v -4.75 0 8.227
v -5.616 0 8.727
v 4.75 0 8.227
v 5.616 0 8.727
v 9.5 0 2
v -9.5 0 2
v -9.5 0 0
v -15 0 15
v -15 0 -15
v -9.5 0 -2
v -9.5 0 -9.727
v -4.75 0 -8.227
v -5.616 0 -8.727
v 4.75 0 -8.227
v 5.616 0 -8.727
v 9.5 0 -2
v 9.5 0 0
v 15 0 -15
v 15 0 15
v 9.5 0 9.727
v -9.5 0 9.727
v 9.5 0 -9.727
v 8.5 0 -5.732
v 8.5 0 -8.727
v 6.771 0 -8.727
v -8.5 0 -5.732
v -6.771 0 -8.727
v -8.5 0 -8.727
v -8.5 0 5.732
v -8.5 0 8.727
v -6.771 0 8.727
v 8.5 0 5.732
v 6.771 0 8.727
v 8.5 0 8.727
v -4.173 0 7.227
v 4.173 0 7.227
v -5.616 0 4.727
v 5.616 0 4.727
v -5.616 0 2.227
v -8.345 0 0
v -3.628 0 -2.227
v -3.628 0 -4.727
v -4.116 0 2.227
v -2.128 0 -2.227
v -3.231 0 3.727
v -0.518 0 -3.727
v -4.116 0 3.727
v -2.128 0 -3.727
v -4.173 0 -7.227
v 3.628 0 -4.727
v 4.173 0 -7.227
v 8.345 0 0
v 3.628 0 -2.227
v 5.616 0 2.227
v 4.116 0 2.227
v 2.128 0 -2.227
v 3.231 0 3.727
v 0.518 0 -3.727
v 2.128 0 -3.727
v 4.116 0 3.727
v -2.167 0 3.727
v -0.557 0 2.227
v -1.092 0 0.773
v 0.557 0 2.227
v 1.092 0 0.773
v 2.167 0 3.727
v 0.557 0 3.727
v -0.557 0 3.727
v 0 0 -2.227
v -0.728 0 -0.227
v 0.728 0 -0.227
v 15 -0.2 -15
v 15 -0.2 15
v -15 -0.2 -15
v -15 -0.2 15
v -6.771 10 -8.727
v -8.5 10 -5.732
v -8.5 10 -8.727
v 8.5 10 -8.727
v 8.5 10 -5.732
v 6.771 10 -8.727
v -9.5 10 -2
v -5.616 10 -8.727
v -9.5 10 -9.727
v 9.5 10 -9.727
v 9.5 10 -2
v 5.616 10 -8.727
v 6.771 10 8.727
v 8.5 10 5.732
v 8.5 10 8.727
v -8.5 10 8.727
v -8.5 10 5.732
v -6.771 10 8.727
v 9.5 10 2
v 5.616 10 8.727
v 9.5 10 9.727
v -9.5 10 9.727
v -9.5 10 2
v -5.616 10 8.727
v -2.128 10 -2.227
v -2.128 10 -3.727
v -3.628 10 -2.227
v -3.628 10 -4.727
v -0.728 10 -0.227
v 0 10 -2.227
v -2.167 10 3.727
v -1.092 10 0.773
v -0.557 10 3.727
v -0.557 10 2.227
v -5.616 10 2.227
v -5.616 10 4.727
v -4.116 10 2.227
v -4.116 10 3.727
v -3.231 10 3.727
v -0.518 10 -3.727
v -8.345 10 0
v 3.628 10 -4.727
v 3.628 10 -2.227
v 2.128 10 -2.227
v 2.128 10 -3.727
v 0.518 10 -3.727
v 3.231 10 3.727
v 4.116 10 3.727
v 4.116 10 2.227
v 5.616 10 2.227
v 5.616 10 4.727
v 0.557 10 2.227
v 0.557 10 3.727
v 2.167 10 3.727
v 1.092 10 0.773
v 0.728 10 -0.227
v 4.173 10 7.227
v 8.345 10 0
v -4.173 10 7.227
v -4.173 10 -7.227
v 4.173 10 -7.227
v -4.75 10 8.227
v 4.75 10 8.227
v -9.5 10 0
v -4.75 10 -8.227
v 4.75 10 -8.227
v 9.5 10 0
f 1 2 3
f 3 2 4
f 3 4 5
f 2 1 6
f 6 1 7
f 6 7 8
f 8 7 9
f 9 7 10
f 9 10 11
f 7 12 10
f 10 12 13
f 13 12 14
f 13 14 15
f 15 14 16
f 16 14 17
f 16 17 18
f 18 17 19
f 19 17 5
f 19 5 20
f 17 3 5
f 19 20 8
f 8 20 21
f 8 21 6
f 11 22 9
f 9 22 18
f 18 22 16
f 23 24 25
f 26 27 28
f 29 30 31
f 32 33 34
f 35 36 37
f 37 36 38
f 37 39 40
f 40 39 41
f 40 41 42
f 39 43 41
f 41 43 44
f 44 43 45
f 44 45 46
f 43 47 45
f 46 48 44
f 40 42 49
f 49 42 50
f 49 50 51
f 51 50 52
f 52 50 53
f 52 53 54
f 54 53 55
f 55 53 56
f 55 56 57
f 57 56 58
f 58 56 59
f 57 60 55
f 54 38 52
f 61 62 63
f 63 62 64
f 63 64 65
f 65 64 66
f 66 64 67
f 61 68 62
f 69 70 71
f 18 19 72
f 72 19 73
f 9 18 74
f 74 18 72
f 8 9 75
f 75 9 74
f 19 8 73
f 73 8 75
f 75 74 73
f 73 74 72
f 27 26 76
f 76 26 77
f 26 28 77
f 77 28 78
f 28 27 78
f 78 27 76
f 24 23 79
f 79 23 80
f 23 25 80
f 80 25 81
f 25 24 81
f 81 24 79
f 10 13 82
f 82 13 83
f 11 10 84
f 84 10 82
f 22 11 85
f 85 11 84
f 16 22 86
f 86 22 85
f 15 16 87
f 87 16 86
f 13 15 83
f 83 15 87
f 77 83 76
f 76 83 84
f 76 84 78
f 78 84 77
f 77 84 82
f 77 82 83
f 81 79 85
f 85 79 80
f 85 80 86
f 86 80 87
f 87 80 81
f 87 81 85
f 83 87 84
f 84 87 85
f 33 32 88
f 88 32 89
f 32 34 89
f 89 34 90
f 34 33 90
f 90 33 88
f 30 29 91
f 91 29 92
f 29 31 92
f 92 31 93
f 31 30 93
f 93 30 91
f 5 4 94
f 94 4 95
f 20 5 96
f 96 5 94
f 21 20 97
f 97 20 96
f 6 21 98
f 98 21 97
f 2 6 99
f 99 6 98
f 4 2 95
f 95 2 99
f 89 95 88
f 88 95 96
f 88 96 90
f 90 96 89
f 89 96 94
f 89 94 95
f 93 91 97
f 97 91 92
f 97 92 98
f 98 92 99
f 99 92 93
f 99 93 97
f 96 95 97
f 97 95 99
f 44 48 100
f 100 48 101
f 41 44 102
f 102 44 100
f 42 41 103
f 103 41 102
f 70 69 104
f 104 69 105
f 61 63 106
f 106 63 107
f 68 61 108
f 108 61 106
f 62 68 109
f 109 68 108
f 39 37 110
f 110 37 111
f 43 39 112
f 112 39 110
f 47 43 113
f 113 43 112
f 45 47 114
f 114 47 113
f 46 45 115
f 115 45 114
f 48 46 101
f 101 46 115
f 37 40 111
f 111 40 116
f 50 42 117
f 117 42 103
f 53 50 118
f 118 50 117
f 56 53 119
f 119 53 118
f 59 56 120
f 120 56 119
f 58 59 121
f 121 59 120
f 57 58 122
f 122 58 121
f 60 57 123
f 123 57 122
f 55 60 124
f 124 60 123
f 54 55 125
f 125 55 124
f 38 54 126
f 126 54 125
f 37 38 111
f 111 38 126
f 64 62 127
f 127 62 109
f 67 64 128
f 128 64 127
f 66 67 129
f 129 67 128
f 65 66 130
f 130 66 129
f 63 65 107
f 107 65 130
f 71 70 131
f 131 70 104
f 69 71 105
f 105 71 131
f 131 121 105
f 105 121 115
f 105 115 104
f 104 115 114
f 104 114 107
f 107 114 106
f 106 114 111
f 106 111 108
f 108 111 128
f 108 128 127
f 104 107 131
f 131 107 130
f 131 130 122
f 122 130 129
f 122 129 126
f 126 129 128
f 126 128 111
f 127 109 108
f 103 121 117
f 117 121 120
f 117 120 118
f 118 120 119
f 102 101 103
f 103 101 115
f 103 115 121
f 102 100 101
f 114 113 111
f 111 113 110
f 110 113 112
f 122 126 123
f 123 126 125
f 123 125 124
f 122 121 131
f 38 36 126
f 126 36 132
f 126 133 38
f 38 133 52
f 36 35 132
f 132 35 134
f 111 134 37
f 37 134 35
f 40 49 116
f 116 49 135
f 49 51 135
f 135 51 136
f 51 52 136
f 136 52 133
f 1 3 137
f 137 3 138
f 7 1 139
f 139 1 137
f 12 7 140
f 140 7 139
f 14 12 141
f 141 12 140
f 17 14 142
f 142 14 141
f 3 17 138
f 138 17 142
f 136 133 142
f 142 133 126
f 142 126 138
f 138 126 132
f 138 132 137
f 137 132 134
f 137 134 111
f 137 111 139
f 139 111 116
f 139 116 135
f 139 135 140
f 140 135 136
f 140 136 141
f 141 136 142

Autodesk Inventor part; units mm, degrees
ref_plane "YZ Plane" through (0, 0, 0) normal (1, 0, 0) x (0, 1, 0)
ref_plane "XZ Plane" through (0, 0, 0) normal (0, 1, 0) x (-1, 0, 0)
ref_plane "XY Plane" through (0, 0, 0) normal (0, 0, 1) x (1, 0, 0)
sketch "Sketch1" plane through (0, 0, 0) normal (0, 1, 0) x (-1, 0, 0)
  line L0 (-10, 10) -> (10, 10)
  line L1 (10, 10) -> (10, -10)
  line L2 (10, -10) -> (-10, -10)
  line L3 (-10, -10) -> (-10, 10)
  line L4 (-10, 10) -> (10, -10) construction
  line L5 (10, 10) -> (-10, -10) construction
  line L6 (-9.5, 0) -> (-4.75, 8.2272)
  line L7 (-4.75, 8.2272) -> (4.75, 8.2272)
  line L8 (4.75, 8.2272) -> (9.5, 0)
  line L9 (9.5, 0) -> (4.75, -8.2272)
  line L10 (4.75, -8.2272) -> (-4.75, -8.2272)
  line L11 (-4.75, -8.2272) -> (-9.5, 0)
  line L12 (-8.3453, 0) -> (-4.1726, 7.2272)
  line L13 (-4.1726, 7.2272) -> (4.1726, 7.2272)
  line L14 (4.1726, 7.2272) -> (8.3453, 0)
  line L15 (8.3453, 0) -> (4.1726, -7.2272)
  line L16 (4.1726, -7.2272) -> (-4.1726, -7.2272)
  line L17 (-4.1726, -7.2272) -> (-8.3453, 0)
  line L18 (2.1284, -3.7272) -> (2.1284, -2.2272)
  line L19 (2.1284, -2.2272) -> (3.6284, -2.2272)
  line L20 (3.6284, -2.2272) -> (3.6284, -4.7272)
  line L21 (3.6284, -4.7272) -> (0, -4.7272)
  line L22 (0, -4.7272) -> (0, -2.2272)
  line L23 (0, -2.2272) -> (0.7279, -0.2272)
  line L24 (0.7279, -0.2272) -> (0, -0.2272)
  line L25 (0, -0.2272) -> (0, 0.7728)
  line L26 (0, 0.7728) -> (1.0919, 0.7728)
  line L27 (3.2314, 3.7272) -> (0.5182, -3.7272)
  line L28 (0.5182, -3.7272) -> (2.1284, -3.7272)
  line L29 (3.2314, 3.7272) -> (4.116, 3.7272)
  line L30 (4.116, 3.7272) -> (4.116, 2.2272)
  line L31 (4.116, 2.2272) -> (5.616, 2.2272)
  line L32 (5.616, 2.2272) -> (5.616, 4.7272)
  line L33 (5.616, 4.7272) -> (2.2598, 4.7272)
  line L34 (1.0919, 0.7728) -> (2.1673, 3.7272)
  line L35 (2.1673, 3.7272) -> (0.5571, 3.7272)
  line L36 (0.5571, 3.7272) -> (0.5571, 2.2272)
  line L37 (0.5571, 2.2272) -> (0, 2.2272)
  line L38 (0, 2.2272) -> (0, 4.7272)
  line L39 (0, 4.7272) -> (2.2598, 4.7272)
  line L40 (-2.1284, -3.7272) -> (-2.1284, -2.2272)
  line L41 (-2.1284, -2.2272) -> (-3.6284, -2.2272)
  line L42 (-3.6284, -2.2272) -> (-3.6284, -4.7272)
  line L43 (-3.6284, -4.7272) -> (0, -4.7272)
  line L44 (0, -2.2272) -> (-0.7279, -0.2272)
  line L45 (-0.7279, -0.2272) -> (0, -0.2272)
  line L46 (0, 0.7728) -> (-1.0919, 0.7728)
  line L47 (-3.2314, 3.7272) -> (-0.5182, -3.7272)
  line L48 (-0.5182, -3.7272) -> (-2.1284, -3.7272)
  line L49 (-3.2314, 3.7272) -> (-4.116, 3.7272)
  line L50 (-4.116, 3.7272) -> (-4.116, 2.2272)
  line L51 (-4.116, 2.2272) -> (-5.616, 2.2272)
  line L52 (-5.616, 2.2272) -> (-5.616, 4.7272)
  line L53 (-5.616, 4.7272) -> (-2.2598, 4.7272)
  line L54 (-1.0919, 0.7728) -> (-2.1673, 3.7272)
  line L55 (-2.1673, 3.7272) -> (-0.5571, 3.7272)
  line L56 (-0.5571, 3.7272) -> (-0.5571, 2.2272)
  line L57 (-0.5571, 2.2272) -> (0, 2.2272)
  line L58 (0, 4.7272) -> (-2.2598, 4.7272)
  line L59 (5.616, -8.7272) -> (9.5, -2)
  line L60 (9.5, -2) -> (9.5, -9.7272)
  line L61 (9.5, -9.7272) -> (0, -9.7272)
  line L62 (0, -9.7272) -> (0, -8.7272)
  line L63 (0, -8.7272) -> (5.616, -8.7272)
  line L64 (6.7707, -8.7272) -> (8.5, -8.7272)
  line L65 (8.5, -8.7272) -> (8.5, -5.7321)
  line L66 (8.5, -5.7321) -> (6.7707, -8.7272)
  line L67 (-5.616, -8.7272) -> (-9.5, -2)
  line L68 (-9.5, -2) -> (-9.5, -9.7272)
  line L69 (-9.5, -9.7272) -> (0, -9.7272)
  line L70 (0, -8.7272) -> (-5.616, -8.7272)
  line L71 (-6.7707, -8.7272) -> (-8.5, -8.7272)
  line L72 (-8.5, -8.7272) -> (-8.5, -5.7321)
  line L73 (-8.5, -5.7321) -> (-6.7707, -8.7272)
  line L74 (10, 0) -> (14.2645, 0) construction
  line L75 (-10, -10) -> (10, 10) construction
  line L76 (4.75, 8.2272) -> (-4.75, 8.2272)
  line L77 (5.616, 8.7272) -> (9.5, 2)
  line L78 (9.5, 2) -> (9.5, 9.7272)
  line L79 (9.5, 9.7272) -> (0, 9.7272)
  line L80 (0, 9.7272) -> (0, 8.7272)
  line L81 (0, 8.7272) -> (5.616, 8.7272)
  line L82 (6.7707, 8.7272) -> (8.5, 8.7272)
  line L83 (8.5, 8.7272) -> (8.5, 5.7321)
  line L84 (8.5, 5.7321) -> (6.7707, 8.7272)
  line L85 (-9.5, 9.7272) -> (0, 9.7272)
  line L86 (-6.7707, 8.7272) -> (-8.5, 8.7272)
  line L87 (-8.5, 5.7321) -> (-6.7707, 8.7272)
  line L88 (-8.5, 8.7272) -> (-8.5, 5.7321)
  line L89 (-9.5, 2) -> (-9.5, 9.7272)
  line L90 (-5.616, 8.7272) -> (-9.5, 2)
  line L91 (0, 8.7272) -> (-5.616, 8.7272)
  point P0 (0, 0)
  point P1 (0, 0)
  point P2 (0, 0)
  point P3 (0, -7.2272)
  dimension "d0" = 20
  dimension "d1" = 20
  dimension "d2" = 0.5
  dimension "d3" = 1
  dimension "d4" = 1.5
  dimension "d5" = 1
  dimension "d6" = 1.5
  dimension "d7" = 1
  dimension "d9" = 70
  dimension "d13" = 1.5
  dimension "d14" = 1.5
  dimension "d15" = 1
  dimension "d16" = 1
  dimension "d17" = 2
  dimension "d18" = 1
  dimension "d19" = 2.5
  dimension "d23" = 1
  dimension "d26" = 2.5
  dimension "d29" = 0.5
  dimension "d30" = 1
  dimension "d32" = 1
  dimension "d33" = 1
  dimension "d34" = 1
extrude "Extrusion1" add sketch "Sketch1" along normal blind 10 contours L6 L7 L8 L9 L10 L11 | L53 L58 L38 L57 L56 L55 L54 L46 L25 L45 L44 L22 L43 L42 L41 L40 L48 L47 L49 L50 L51 L52 | L39 L33 L32 L31 L30 L29 L27 L28 L18 L19 L20 L21 L22 L23 L24 L25 L26 L34 L35 L36 L37 L38 | L59 L60 L61 L62 L63 | L62 L69 L68 L67 L70 | L81 L80 L79 L78 L77 | L91 L90 L89 L85 L80
sketch "Sketch2" plane through (0, 0, 0) normal (0, 1, 0) x (-1, 0, 0)
  line L0 (-15, 15) -> (15, 15)
  line L1 (15, 15) -> (15, -15)
  line L2 (15, -15) -> (-15, -15)
  line L3 (-15, -15) -> (-15, 15)
  line L4 (-15, 15) -> (15, -15) construction
  line L5 (15, 15) -> (-15, -15) construction
  point P0 (0, 0)
  dimension "d35" = 30
  dimension "d36" = 30
extrude "Extrusion2" add sketch "Sketch2" against normal blind 0.2
equation "\"d2\" = mini"
equation "\"d3\" = 2 * mini"
equation "\"nozzleHead\" = 0.5"
equation "\"mini\" = nozzleHead"
properties part number "A_main"
